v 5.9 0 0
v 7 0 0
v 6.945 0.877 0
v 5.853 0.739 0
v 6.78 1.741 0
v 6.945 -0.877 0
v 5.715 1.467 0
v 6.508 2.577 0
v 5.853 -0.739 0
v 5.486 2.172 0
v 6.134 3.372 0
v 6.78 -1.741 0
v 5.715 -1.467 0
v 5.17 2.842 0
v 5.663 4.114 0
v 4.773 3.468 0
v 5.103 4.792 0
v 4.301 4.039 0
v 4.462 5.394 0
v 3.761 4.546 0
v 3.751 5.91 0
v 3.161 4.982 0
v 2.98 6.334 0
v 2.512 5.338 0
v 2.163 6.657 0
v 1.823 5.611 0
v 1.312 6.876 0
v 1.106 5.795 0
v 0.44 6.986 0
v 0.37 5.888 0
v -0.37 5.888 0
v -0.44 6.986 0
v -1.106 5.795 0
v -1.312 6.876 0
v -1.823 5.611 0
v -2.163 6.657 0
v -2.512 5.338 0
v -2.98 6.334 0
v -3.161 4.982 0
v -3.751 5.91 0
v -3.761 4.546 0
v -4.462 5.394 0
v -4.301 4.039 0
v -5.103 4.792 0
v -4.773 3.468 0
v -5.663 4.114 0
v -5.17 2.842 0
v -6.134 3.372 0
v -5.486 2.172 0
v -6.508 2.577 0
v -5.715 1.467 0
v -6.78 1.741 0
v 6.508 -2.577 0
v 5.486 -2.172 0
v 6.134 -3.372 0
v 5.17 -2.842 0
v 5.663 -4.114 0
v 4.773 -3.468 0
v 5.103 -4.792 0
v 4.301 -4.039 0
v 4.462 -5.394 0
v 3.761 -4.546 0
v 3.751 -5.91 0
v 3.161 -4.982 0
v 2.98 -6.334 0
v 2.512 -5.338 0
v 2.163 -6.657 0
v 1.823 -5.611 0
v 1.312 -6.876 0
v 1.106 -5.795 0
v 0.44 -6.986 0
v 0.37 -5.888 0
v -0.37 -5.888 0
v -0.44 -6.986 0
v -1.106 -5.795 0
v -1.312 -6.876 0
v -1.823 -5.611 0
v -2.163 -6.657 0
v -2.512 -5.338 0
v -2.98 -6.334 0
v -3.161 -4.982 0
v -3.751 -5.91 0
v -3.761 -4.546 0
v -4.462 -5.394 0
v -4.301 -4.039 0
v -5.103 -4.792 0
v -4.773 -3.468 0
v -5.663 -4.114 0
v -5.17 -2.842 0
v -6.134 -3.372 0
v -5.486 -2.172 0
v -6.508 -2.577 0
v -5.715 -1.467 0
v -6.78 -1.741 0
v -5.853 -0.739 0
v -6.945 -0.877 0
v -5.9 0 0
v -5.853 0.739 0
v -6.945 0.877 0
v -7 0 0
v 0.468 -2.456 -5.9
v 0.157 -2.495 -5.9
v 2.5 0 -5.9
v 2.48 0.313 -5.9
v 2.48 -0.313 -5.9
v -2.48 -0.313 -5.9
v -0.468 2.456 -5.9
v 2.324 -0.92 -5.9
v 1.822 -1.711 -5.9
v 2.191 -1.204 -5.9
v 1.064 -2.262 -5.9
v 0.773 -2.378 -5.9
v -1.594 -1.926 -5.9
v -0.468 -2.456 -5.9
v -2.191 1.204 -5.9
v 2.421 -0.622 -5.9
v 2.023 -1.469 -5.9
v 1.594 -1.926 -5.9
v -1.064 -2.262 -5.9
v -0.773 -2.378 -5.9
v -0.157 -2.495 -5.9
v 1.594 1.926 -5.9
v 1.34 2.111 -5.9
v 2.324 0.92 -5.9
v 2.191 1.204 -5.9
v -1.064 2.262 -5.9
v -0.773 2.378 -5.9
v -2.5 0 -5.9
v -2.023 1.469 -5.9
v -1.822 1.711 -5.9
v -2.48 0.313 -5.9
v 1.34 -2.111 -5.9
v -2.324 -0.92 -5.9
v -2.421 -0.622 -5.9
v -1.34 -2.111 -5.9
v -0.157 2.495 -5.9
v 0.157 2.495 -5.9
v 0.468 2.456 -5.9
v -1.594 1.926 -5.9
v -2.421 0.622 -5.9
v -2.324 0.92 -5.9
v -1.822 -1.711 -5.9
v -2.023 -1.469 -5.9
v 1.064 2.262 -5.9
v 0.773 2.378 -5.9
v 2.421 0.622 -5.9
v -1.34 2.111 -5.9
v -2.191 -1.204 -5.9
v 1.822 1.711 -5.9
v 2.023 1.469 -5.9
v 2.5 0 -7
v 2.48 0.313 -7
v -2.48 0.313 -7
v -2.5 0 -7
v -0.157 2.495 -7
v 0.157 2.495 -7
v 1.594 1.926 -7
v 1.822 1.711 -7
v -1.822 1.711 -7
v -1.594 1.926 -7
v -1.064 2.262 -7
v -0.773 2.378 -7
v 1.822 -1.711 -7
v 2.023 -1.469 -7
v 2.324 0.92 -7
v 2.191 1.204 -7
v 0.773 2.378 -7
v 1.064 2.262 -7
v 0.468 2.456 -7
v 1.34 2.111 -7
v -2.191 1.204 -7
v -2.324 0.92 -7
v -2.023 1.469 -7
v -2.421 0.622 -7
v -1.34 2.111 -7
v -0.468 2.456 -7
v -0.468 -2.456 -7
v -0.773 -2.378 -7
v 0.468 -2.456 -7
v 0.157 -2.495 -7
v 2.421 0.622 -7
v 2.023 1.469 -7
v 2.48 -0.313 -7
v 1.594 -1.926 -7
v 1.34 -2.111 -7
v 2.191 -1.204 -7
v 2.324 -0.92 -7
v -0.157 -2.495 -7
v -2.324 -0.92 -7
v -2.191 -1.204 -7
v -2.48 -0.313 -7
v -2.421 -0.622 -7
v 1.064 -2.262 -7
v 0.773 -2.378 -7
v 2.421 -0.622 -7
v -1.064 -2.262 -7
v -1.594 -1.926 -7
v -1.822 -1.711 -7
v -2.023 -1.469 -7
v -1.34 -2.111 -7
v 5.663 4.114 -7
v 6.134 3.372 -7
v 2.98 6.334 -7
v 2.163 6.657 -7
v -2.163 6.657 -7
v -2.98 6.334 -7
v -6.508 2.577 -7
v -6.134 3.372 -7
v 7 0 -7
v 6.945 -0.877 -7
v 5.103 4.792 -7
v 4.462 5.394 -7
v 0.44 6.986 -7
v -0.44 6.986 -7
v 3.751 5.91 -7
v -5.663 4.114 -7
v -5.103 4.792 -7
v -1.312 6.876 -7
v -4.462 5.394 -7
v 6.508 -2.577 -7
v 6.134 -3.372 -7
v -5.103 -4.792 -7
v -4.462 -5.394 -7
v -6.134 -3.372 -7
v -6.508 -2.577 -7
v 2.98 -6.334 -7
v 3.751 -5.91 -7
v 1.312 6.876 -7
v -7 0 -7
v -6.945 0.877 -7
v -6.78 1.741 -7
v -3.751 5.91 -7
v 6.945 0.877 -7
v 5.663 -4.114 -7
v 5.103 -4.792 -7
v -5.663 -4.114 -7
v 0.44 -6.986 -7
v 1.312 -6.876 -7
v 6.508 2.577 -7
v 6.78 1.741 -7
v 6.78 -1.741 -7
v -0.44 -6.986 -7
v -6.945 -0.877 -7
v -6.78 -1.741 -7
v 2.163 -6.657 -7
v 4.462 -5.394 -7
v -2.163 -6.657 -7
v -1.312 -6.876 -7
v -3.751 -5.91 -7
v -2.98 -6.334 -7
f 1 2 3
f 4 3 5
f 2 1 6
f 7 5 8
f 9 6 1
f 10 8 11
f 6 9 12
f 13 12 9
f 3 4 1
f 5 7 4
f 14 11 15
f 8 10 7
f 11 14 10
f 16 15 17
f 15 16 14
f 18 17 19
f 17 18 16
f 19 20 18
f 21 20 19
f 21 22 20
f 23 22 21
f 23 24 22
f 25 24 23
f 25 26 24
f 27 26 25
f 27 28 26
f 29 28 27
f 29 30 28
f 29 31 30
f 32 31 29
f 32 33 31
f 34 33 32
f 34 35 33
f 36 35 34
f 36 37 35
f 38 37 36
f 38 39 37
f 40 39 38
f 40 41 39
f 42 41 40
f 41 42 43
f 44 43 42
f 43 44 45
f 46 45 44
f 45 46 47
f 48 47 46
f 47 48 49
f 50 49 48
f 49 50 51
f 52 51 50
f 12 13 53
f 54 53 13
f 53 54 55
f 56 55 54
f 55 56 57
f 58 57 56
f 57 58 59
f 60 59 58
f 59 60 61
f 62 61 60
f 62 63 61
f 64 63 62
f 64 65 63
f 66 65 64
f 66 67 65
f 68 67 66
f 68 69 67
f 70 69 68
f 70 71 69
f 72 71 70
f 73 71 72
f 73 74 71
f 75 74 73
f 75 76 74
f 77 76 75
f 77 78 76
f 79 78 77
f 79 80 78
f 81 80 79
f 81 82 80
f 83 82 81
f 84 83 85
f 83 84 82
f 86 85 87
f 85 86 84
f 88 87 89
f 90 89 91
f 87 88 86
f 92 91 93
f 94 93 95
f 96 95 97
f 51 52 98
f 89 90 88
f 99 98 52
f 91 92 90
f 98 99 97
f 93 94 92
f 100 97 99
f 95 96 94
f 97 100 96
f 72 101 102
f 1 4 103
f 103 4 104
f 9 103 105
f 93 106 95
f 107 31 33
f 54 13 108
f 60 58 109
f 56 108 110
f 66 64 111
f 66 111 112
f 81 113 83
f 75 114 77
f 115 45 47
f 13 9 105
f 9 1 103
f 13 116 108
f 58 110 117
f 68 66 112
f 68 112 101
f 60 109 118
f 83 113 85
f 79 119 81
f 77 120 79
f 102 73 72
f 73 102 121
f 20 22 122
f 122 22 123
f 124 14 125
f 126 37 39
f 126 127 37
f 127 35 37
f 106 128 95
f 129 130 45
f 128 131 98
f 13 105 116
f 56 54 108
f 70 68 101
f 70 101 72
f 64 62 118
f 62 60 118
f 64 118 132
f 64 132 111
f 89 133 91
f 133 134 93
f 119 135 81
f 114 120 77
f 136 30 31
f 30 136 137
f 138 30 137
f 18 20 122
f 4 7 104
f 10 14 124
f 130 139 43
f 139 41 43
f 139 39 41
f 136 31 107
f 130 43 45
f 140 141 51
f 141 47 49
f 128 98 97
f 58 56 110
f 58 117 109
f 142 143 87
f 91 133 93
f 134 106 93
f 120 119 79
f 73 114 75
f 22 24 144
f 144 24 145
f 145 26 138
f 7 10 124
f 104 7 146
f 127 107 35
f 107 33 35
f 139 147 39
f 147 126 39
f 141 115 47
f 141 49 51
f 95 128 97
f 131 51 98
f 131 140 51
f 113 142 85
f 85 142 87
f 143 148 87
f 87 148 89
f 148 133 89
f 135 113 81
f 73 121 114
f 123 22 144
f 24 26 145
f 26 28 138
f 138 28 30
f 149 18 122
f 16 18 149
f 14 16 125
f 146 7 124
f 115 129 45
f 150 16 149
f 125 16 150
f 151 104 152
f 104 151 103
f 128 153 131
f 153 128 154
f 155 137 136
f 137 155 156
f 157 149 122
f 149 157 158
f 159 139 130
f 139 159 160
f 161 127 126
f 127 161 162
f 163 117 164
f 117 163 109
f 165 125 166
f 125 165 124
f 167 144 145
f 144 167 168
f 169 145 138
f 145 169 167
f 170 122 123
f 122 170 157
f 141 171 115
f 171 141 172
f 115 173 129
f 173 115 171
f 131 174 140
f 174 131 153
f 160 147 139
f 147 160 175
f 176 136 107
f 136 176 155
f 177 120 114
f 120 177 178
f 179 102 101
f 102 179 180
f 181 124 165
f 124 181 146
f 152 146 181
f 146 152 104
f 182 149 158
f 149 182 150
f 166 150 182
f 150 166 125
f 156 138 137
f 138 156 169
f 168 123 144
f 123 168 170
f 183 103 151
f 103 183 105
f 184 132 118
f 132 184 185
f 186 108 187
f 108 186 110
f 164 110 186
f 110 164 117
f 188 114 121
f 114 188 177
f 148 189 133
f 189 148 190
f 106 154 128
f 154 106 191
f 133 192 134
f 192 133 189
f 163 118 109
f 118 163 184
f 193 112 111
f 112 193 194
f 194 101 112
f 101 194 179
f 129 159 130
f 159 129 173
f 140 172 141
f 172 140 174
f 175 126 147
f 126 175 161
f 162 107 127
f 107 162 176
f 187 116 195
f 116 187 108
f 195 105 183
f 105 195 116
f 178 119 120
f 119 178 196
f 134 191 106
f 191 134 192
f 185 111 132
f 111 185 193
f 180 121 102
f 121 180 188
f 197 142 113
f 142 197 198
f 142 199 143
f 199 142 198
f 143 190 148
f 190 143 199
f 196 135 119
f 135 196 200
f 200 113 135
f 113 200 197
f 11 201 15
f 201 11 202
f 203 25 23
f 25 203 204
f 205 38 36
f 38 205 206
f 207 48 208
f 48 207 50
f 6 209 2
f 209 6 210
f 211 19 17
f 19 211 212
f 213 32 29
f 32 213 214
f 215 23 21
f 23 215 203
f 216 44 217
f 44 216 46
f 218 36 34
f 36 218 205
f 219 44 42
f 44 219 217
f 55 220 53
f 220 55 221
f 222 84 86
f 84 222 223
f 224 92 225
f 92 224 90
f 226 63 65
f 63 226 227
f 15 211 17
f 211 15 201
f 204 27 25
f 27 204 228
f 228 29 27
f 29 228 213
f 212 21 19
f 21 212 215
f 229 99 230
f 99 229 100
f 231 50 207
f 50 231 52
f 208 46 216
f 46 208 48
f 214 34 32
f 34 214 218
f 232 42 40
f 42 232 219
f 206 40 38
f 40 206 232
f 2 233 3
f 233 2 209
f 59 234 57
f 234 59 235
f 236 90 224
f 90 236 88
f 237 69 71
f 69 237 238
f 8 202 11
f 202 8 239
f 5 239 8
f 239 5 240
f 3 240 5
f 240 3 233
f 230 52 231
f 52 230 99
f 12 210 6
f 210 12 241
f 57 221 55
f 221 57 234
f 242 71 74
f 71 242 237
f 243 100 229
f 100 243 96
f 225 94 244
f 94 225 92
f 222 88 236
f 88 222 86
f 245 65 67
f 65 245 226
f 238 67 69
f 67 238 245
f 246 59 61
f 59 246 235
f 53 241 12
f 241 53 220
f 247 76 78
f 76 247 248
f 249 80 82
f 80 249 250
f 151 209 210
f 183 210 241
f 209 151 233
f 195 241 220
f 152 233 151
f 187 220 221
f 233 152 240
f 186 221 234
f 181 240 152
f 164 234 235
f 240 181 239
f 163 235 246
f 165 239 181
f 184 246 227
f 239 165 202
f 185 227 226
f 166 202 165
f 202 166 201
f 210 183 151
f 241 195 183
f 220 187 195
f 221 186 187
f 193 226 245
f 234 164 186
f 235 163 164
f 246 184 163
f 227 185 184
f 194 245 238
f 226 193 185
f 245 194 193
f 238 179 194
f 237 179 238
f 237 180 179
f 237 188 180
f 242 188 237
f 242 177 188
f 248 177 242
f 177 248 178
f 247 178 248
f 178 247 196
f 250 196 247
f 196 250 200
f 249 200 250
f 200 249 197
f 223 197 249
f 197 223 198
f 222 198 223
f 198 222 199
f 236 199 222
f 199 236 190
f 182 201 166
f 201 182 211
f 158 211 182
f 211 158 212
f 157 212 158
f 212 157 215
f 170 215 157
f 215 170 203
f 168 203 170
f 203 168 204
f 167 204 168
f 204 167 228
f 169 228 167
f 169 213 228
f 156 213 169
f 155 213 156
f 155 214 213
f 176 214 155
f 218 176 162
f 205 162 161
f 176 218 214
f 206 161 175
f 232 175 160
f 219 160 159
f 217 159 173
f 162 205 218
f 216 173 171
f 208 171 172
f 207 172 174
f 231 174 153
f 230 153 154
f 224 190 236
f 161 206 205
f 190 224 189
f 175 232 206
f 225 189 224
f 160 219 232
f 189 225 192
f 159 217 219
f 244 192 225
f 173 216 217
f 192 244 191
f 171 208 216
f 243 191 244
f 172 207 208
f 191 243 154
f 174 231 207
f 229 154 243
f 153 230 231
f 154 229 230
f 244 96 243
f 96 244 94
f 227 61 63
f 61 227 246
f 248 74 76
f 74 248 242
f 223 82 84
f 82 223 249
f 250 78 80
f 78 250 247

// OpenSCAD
$fn = 50;


difference() {
	union() {
		translate(v = [0, 0, -7.0000000000]) {
			cylinder(h = 7, r = 7.0000000000);
		}
	}
	union() {
		translate(v = [0, 0, 0]) {
			rotate(a = [0, 0, 0]) {
				difference() {
					union() {
						#translate(v = [0, 0, -9.0000000000]) {
							cylinder(h = 9, r = 2.2500000000);
						}
						#translate(v = [0, 0, -5.9000000000]) {
							cylinder(h = 5.9000000000, r1 = 2.5000000000, r2 = 5.9000000000);
						}
						#translate(v = [0, 0, -9.0000000000]) {
							cylinder(h = 9, r = 2.5000000000);
						}
						#translate(v = [0, 0, -9.0000000000]) {
							cylinder(h = 9, r = 2.2500000000);
						}
					}
					union();
				}
			}
		}
	}
}
